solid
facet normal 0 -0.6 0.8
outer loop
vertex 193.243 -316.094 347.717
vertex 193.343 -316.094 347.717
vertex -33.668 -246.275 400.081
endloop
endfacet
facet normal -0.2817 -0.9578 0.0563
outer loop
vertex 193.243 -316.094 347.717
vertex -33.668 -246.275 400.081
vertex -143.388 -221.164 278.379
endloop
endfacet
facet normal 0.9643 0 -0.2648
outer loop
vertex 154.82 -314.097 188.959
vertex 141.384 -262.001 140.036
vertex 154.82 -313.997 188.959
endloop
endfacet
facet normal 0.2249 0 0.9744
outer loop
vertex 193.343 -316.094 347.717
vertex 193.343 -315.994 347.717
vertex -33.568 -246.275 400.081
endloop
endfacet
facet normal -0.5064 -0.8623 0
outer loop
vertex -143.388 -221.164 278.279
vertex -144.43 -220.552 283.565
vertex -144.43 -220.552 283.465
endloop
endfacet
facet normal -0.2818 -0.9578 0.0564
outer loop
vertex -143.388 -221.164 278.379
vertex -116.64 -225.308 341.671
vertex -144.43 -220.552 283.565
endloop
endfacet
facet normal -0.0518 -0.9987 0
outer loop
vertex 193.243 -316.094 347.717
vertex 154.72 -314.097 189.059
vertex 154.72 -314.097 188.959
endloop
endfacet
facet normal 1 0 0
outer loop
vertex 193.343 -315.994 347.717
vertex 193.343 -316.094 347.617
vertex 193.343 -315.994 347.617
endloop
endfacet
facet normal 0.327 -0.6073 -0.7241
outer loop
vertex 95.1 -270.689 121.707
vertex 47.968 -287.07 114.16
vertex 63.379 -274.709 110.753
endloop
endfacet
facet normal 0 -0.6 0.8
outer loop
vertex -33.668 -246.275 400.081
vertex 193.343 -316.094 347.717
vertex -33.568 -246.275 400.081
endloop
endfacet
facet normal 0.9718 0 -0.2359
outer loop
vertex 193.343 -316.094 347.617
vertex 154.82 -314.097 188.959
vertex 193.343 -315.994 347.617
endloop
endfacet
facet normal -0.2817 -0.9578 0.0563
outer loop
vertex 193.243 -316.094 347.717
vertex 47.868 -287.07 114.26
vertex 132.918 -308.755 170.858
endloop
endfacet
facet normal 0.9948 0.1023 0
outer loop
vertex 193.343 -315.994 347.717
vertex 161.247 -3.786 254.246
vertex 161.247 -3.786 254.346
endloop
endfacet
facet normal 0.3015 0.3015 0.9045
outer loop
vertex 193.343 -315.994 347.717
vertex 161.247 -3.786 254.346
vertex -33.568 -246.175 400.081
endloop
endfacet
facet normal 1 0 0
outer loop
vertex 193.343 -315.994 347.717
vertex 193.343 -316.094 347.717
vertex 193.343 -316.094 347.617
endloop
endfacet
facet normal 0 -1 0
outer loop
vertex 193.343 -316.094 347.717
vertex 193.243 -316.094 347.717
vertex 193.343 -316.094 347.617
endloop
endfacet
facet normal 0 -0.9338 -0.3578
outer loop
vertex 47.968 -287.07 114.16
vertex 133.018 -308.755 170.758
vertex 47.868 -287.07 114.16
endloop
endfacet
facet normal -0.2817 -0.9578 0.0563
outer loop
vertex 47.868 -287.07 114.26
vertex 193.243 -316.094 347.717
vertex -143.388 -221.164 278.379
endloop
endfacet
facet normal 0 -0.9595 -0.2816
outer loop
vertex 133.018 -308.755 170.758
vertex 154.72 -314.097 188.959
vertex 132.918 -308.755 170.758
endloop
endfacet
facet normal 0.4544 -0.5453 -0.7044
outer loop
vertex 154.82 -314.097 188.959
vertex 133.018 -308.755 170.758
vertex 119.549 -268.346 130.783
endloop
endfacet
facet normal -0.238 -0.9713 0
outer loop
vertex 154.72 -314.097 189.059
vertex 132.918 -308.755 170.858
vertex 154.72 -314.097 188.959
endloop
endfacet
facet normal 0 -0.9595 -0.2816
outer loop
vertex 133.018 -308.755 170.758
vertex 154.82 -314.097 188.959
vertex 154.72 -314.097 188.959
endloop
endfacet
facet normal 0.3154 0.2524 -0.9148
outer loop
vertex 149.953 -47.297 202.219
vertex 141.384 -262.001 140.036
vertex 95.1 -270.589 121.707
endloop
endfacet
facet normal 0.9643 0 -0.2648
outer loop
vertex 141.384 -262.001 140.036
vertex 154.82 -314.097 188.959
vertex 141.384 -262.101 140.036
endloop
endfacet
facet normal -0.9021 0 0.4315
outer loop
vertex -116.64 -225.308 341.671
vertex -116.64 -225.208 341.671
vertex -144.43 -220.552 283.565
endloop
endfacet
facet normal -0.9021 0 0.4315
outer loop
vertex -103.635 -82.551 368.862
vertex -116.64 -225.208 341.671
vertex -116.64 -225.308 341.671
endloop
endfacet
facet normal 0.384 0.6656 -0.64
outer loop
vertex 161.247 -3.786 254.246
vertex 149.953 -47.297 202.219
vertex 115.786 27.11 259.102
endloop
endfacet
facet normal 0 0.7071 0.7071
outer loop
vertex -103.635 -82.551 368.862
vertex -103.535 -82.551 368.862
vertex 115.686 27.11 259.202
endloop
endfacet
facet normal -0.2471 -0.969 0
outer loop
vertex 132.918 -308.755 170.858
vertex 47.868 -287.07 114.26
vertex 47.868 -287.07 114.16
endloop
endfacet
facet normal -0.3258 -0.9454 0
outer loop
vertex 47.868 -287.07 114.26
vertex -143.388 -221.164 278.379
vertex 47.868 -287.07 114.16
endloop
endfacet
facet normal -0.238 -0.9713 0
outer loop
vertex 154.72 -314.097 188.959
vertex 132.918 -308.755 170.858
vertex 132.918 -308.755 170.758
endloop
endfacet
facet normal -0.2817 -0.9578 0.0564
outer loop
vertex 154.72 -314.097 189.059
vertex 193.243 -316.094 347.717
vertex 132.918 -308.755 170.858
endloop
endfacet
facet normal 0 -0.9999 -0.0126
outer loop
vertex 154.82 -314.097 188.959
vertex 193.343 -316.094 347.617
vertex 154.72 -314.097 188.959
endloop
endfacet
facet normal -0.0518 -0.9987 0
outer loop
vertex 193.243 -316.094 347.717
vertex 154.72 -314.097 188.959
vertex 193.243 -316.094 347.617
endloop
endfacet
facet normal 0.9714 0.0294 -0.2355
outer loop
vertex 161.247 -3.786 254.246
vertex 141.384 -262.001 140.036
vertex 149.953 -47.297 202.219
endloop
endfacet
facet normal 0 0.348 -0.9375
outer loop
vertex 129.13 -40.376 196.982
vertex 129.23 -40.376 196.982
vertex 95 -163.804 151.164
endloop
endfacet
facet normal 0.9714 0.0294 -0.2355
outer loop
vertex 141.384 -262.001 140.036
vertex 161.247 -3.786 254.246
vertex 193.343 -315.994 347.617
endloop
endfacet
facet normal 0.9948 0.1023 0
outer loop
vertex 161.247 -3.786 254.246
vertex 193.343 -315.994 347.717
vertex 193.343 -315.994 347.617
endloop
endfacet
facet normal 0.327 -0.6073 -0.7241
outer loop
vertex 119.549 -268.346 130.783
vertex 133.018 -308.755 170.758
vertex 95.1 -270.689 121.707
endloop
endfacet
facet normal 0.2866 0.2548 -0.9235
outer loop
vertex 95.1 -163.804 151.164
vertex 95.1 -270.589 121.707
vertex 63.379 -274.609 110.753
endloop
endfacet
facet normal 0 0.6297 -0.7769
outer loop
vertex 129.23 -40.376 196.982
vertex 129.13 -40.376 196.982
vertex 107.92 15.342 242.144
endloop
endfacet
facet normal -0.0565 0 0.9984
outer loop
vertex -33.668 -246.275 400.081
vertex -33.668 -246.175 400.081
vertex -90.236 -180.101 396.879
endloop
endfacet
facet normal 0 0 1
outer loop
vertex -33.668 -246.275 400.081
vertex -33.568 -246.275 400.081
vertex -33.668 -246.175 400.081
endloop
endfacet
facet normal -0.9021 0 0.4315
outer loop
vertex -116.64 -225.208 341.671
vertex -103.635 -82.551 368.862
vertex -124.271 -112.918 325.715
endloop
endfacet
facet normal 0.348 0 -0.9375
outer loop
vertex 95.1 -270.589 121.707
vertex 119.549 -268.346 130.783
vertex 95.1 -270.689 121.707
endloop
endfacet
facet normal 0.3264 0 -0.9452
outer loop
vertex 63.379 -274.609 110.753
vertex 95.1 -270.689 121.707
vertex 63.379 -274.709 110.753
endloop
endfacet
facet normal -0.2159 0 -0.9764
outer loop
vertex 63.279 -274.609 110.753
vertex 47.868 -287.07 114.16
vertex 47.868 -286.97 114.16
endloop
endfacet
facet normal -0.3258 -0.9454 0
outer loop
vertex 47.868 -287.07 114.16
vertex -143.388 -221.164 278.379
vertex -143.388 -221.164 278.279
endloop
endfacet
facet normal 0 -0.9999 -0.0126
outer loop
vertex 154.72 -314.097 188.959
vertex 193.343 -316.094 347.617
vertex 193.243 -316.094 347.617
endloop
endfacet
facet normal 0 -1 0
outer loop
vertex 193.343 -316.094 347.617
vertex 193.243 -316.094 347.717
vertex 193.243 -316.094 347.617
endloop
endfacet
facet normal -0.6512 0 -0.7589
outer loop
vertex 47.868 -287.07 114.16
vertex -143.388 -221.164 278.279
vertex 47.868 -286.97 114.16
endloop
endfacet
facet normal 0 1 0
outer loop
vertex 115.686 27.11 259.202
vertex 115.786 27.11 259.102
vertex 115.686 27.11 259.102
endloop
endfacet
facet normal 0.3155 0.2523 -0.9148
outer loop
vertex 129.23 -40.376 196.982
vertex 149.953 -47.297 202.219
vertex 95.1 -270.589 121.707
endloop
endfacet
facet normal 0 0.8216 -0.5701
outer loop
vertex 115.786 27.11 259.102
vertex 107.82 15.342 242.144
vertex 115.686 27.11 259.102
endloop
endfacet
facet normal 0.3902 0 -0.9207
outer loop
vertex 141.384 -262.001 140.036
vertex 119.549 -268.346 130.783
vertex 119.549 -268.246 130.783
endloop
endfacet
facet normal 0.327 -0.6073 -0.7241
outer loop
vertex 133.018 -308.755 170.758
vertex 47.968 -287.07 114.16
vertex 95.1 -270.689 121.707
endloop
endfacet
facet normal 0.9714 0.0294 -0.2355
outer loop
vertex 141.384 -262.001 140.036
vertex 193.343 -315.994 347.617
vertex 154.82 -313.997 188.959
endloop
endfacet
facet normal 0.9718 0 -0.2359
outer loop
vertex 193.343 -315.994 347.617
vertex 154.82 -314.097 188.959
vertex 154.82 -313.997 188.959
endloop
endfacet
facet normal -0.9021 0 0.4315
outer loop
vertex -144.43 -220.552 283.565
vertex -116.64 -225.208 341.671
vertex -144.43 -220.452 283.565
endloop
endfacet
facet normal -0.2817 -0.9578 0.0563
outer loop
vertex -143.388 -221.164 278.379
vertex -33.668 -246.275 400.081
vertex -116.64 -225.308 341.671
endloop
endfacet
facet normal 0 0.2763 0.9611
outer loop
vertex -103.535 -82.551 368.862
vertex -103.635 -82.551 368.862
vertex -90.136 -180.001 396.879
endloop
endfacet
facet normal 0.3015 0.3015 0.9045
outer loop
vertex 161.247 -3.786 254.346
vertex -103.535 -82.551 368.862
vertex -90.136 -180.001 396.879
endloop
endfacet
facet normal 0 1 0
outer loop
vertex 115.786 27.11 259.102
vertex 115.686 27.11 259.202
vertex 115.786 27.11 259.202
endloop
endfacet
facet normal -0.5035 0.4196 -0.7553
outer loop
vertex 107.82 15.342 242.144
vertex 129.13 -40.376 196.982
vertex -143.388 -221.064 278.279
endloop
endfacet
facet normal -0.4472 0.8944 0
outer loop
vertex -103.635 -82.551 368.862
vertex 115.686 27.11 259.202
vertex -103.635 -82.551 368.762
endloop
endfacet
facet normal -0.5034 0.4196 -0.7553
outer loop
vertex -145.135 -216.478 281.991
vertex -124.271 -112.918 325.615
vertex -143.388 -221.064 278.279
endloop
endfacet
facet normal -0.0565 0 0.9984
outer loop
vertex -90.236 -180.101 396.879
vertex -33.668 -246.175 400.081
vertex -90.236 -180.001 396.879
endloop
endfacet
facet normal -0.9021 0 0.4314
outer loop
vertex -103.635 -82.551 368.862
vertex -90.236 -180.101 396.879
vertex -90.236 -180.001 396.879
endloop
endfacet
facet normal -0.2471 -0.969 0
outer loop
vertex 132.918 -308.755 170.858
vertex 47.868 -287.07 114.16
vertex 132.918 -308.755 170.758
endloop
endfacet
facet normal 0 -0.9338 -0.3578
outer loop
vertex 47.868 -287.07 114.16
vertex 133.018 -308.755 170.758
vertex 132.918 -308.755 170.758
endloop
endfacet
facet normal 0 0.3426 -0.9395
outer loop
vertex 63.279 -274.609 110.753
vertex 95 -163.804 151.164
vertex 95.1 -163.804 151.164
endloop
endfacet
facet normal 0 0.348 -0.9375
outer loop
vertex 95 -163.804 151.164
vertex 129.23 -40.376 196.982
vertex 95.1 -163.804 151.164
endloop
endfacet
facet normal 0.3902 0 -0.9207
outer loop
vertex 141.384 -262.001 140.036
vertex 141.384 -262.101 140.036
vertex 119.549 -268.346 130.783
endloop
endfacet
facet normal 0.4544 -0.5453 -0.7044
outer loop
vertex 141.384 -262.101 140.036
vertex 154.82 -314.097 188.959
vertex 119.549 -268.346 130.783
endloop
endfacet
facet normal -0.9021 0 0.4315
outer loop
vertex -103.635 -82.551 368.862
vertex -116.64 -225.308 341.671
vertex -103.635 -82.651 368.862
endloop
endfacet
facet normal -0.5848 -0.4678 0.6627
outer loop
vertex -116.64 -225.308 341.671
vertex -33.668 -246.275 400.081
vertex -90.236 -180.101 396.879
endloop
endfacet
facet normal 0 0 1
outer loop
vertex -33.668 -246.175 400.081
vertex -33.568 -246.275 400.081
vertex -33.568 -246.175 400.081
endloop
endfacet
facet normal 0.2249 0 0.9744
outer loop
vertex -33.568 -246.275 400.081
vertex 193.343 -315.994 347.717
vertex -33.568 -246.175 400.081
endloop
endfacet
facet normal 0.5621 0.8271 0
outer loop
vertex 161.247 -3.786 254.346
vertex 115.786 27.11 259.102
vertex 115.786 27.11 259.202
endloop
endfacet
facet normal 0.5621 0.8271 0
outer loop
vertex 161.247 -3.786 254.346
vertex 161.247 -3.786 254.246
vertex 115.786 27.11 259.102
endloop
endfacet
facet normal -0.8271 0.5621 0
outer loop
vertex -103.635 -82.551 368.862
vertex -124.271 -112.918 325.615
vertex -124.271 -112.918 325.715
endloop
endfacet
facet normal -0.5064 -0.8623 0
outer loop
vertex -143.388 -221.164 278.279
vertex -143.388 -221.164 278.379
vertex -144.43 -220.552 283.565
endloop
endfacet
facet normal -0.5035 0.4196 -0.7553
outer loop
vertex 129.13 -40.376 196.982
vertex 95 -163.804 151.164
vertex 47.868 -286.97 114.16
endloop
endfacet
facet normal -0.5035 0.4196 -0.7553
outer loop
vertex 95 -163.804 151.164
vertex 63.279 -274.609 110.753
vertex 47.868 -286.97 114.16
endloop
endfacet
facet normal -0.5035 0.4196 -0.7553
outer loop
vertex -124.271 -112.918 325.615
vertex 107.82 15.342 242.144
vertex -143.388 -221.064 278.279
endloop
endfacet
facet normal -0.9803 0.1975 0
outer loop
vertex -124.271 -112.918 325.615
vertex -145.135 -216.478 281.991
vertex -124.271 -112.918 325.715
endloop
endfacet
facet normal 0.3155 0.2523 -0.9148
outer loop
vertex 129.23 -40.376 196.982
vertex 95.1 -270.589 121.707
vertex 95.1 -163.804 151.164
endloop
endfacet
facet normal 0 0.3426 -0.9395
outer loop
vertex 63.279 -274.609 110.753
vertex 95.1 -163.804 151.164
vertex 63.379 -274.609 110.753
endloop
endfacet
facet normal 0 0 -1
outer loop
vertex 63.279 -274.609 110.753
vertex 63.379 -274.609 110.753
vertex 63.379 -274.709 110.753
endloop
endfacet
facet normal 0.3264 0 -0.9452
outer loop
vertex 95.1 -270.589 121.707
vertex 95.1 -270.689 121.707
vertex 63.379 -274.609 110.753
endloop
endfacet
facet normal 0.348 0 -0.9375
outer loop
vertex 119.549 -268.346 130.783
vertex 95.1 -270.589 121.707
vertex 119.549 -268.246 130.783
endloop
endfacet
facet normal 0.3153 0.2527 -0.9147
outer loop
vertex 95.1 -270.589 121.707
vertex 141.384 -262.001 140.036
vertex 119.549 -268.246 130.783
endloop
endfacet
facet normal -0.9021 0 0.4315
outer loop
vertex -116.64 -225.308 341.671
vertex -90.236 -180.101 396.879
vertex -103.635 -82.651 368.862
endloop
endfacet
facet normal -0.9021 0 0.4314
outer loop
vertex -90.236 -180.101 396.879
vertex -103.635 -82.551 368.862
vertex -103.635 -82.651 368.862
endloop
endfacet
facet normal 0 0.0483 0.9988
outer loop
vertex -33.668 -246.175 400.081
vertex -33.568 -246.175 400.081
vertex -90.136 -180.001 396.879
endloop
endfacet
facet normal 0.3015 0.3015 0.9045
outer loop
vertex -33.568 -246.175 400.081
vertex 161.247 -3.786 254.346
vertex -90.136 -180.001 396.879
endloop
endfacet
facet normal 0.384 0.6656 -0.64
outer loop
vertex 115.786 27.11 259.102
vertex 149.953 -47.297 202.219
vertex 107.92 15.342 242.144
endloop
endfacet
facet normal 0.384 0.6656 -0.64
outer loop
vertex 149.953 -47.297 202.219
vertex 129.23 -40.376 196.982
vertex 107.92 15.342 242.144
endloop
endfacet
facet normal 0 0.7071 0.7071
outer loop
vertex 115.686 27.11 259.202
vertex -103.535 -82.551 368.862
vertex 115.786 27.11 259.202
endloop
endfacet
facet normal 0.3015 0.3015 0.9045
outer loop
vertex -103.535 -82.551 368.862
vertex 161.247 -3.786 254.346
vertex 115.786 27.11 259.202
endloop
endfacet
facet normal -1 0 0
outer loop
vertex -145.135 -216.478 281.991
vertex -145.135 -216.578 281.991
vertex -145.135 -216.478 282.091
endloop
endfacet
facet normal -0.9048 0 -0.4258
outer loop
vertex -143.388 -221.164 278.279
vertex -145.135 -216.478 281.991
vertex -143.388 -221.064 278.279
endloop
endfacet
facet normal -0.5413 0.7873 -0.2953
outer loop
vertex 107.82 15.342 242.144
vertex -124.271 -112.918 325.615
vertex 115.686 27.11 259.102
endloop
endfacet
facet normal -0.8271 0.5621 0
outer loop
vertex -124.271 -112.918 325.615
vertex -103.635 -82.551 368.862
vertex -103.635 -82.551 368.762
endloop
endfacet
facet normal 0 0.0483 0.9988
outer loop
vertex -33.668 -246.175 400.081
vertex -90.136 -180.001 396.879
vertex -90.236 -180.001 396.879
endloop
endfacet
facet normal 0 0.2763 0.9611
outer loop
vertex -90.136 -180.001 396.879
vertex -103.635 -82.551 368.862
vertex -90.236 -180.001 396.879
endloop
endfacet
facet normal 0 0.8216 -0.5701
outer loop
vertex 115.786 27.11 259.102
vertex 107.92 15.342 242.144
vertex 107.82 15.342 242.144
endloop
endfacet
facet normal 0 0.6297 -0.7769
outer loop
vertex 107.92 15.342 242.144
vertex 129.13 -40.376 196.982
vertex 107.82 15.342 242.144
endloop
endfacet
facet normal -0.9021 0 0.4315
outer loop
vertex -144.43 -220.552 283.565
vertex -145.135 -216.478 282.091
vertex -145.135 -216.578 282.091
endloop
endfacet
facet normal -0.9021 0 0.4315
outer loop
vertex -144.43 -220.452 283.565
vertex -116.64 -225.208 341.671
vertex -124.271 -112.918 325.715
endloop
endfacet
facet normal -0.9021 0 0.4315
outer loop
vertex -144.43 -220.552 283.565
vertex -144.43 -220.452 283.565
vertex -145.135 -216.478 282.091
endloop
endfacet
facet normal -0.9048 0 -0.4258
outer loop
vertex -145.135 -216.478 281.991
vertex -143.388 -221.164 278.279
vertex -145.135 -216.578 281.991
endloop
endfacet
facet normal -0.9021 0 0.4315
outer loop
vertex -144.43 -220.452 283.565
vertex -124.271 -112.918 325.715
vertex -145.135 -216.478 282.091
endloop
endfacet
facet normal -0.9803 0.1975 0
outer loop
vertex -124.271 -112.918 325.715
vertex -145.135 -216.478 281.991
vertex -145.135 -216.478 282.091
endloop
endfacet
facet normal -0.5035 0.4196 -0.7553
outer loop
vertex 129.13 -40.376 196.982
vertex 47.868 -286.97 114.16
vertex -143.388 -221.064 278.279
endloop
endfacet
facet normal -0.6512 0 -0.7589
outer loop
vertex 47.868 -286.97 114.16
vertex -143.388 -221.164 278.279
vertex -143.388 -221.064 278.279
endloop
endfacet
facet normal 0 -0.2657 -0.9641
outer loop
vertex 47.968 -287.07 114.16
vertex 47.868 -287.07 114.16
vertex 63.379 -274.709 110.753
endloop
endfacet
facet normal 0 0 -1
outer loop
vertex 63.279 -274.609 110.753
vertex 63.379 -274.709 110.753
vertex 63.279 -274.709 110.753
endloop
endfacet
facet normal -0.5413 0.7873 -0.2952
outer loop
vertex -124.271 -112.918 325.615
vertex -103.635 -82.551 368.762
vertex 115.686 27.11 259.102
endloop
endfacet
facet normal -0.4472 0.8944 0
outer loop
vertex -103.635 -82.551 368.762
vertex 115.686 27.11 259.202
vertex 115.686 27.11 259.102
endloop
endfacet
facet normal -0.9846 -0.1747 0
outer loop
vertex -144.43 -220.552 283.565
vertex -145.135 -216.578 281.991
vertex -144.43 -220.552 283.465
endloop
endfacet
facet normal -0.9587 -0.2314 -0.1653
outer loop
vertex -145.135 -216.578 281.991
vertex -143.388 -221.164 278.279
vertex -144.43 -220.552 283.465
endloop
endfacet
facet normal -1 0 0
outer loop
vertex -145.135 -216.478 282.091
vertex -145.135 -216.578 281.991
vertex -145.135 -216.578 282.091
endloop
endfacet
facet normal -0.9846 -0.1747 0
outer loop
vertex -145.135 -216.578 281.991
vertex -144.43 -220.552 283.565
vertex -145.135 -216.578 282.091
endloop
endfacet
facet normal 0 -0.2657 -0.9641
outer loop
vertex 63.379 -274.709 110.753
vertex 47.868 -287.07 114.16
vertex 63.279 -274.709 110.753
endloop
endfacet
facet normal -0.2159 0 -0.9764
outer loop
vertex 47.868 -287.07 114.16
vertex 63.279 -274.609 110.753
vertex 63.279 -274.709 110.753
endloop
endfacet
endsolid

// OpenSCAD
hull(){ translate([193.243318486,-316.094097996,347.616926503])cube(0.1,0.1,0.1);
translate([161.147205151,-3.88645010243,254.246414984])cube(0.1,0.1,0.1);
translate([115.685871056,27.0096021948,259.101508916])cube(0.1,0.1,0.1);
translate([107.819574663,15.2423965241,242.143837183])cube(0.1,0.1,0.1);
translate([-124.271070615,-113.018223235,325.615034169])cube(0.1,0.1,0.1);
translate([-103.635477583,-82.6510721248,368.762183236])cube(0.1,0.1,0.1);
translate([129.129606099,-40.4764930114,196.982210928])cube(0.1,0.1,0.1);
translate([149.853036461,-47.3967721034,202.219178889])cube(0.1,0.1,0.1);
translate([-143.387878788,-221.163636364,278.278787879])cube(0.1,0.1,0.1);
translate([-144.429689684,-220.552138664,283.465194297])cube(0.1,0.1,0.1);
translate([-145.134770889,-216.578044597,281.990933595])cube(0.1,0.1,0.1);
translate([95.0,-163.904109589,151.164383562])cube(0.1,0.1,0.1);
translate([95.0,-270.688622754,121.706586826])cube(0.1,0.1,0.1);
translate([47.8684389911,-287.069529652,114.160190866])cube(0.1,0.1,0.1);
translate([63.2793546108,-274.709103757,110.753150395])cube(0.1,0.1,0.1);
translate([-33.6679292929,-246.275252525,399.981060606])cube(0.1,0.1,0.1);
translate([-116.639848557,-225.307619498,341.571225745])cube(0.1,0.1,0.1);
translate([-90.2360876897,-180.101180438,396.779089376])cube(0.1,0.1,0.1);
translate([154.720211581,-314.096603563,188.958797327])cube(0.1,0.1,0.1);
translate([132.91831357,-308.754940711,170.757575758])cube(0.1,0.1,0.1);
translate([141.284458933,-262.100843314,140.035787683])cube(0.1,0.1,0.1);
translate([119.448742747,-268.34622824,130.783365571])cube(0.1,0.1,0.1); }
